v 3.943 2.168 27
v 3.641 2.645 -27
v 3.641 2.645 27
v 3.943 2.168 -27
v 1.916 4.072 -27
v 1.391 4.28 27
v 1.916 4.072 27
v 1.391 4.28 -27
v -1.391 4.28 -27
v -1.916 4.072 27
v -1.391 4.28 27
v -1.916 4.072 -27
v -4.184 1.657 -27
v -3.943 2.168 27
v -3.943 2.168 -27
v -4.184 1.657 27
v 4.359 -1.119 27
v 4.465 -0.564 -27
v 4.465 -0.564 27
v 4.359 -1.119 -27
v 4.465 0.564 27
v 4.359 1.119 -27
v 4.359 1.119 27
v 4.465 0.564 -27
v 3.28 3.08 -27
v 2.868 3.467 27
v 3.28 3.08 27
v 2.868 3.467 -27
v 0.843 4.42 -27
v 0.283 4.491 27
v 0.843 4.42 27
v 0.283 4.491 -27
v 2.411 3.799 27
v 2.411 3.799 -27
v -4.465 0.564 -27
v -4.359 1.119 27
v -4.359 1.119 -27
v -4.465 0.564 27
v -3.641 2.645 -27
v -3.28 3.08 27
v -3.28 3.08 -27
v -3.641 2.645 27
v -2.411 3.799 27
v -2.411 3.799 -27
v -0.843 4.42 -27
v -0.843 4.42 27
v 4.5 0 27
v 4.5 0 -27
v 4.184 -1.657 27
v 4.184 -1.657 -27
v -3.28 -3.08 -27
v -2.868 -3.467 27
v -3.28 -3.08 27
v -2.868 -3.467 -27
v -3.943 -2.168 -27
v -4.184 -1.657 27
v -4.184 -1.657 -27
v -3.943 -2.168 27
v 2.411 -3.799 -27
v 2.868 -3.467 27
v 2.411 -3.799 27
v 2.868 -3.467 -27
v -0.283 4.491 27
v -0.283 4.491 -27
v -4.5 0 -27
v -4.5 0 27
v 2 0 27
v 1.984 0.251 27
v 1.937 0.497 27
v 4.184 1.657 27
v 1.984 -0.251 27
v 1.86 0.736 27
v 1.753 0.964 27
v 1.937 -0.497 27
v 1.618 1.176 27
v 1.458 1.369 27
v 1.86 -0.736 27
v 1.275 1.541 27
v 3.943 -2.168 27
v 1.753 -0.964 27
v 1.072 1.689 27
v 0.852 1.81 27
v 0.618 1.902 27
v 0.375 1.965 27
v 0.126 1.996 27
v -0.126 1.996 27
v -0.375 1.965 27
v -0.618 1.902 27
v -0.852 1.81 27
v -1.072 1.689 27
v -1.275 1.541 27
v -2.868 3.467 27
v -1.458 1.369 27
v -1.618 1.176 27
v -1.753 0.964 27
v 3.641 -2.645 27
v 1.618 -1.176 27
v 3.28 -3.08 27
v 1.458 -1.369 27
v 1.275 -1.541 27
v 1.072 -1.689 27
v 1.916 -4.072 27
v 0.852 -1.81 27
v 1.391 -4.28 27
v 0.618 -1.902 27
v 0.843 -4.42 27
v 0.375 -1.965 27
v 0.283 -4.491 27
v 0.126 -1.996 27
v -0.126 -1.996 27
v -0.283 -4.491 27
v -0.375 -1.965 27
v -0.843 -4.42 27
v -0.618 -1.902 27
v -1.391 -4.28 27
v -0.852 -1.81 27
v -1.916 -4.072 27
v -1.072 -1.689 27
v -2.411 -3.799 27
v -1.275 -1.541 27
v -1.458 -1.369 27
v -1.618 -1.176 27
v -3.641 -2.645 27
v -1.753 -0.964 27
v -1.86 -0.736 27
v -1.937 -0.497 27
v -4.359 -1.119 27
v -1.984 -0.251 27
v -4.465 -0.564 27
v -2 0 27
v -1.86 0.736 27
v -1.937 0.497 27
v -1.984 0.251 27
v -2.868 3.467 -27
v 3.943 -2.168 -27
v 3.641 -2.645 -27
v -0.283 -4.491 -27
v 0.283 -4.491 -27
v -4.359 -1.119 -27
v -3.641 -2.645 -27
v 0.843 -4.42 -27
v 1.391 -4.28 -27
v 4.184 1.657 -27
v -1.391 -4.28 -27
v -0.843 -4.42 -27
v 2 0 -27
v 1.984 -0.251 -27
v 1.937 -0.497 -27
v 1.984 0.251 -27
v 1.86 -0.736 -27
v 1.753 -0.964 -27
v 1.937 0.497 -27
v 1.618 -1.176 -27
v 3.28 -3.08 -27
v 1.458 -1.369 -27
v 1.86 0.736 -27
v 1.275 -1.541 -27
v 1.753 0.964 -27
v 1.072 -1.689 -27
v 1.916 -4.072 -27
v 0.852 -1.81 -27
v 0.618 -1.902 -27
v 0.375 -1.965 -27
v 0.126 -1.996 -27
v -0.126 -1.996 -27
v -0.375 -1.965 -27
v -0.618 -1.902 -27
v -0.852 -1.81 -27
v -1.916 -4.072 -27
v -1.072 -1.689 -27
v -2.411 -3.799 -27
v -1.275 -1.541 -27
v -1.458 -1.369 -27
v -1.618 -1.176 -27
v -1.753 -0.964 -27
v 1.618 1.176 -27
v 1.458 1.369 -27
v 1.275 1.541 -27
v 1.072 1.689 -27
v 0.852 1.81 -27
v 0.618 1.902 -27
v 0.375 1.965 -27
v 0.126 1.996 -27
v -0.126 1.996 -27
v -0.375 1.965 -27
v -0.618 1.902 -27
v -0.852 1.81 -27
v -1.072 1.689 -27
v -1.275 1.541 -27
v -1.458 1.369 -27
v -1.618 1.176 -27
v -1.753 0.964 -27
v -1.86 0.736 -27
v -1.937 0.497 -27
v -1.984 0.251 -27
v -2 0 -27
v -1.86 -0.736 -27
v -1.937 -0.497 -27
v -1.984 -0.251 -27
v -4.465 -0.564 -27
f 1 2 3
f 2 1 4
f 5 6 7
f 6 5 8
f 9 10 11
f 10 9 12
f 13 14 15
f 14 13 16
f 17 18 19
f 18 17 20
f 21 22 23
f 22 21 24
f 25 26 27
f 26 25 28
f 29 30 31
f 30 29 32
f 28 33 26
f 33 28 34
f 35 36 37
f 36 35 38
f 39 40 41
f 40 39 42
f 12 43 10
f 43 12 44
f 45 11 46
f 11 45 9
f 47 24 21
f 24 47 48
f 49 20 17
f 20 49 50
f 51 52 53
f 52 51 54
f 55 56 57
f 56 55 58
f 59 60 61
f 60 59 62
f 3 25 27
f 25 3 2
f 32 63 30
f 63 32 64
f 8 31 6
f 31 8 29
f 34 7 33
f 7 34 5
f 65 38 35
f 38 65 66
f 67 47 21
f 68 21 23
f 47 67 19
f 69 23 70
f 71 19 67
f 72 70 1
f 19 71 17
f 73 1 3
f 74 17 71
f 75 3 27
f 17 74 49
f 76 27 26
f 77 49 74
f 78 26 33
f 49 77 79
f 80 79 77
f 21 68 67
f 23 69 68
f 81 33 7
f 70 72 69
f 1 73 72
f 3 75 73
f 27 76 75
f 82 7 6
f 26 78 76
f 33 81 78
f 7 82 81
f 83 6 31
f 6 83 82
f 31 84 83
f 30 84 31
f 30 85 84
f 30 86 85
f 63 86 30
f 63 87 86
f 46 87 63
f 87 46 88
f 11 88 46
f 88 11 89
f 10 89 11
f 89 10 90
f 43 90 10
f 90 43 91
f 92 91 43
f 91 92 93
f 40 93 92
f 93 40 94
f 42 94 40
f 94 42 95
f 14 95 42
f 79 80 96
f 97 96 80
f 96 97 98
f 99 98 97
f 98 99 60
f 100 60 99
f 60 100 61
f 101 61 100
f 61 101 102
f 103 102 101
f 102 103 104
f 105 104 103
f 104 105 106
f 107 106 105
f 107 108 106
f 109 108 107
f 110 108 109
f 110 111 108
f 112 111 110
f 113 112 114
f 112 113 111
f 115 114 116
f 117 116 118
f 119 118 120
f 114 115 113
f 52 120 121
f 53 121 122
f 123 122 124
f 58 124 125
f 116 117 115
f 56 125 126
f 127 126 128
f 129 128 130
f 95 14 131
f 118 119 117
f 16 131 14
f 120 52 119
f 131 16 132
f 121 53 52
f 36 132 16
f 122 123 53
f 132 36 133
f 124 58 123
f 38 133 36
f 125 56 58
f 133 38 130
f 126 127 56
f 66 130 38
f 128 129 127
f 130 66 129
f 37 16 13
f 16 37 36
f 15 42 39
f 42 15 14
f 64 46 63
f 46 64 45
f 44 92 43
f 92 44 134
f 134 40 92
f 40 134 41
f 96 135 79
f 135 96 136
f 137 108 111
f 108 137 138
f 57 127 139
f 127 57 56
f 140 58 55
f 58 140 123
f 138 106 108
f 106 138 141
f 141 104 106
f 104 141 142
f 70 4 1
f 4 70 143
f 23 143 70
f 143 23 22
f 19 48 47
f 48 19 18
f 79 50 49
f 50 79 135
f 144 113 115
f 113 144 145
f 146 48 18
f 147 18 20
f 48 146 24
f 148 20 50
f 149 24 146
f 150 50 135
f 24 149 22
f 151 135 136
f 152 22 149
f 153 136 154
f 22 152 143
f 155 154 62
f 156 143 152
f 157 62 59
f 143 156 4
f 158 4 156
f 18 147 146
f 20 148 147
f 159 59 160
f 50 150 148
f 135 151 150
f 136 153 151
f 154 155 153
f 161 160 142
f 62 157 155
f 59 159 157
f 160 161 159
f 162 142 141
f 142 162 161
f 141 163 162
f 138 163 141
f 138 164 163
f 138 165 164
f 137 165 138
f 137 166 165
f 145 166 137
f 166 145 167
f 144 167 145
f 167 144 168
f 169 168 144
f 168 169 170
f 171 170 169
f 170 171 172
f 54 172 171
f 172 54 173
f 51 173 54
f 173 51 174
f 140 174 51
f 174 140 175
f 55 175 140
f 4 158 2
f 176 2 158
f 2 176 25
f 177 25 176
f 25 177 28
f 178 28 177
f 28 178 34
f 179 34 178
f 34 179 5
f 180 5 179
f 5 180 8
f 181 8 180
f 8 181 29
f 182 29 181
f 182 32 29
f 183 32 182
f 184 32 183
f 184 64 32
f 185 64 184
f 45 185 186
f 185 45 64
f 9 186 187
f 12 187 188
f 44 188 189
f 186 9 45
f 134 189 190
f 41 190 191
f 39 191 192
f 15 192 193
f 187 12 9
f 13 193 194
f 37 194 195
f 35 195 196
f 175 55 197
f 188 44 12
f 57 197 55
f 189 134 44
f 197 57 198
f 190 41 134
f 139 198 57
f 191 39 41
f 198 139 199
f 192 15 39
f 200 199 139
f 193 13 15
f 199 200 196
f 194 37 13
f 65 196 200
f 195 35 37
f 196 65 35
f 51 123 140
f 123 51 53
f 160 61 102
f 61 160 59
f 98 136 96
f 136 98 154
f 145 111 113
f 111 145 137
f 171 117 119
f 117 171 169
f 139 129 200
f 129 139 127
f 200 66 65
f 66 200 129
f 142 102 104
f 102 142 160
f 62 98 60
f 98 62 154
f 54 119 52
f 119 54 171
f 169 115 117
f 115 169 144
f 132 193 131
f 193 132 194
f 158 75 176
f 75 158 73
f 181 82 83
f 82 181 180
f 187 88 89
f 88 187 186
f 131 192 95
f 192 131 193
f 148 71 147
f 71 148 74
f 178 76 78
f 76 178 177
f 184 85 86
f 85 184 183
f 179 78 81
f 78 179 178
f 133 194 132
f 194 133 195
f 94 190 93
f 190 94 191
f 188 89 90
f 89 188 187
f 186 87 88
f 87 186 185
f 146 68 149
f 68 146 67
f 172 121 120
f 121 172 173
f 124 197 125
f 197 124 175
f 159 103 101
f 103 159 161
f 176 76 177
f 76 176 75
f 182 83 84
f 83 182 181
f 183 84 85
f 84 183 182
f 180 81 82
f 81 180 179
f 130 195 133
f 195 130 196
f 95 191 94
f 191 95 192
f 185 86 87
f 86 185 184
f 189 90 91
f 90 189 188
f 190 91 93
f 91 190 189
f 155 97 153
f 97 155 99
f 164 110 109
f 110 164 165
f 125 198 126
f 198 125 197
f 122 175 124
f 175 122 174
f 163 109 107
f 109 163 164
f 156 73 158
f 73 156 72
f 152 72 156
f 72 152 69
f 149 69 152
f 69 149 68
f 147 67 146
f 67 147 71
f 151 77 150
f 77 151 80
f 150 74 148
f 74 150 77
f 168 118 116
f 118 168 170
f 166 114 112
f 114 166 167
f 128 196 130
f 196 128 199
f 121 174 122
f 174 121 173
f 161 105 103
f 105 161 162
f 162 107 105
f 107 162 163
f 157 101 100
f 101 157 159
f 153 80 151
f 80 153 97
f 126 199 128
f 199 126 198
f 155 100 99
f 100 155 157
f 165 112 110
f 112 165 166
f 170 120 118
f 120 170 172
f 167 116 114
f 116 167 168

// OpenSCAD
$fn = 50;


difference() {
	union() {
		translate(v = [0, 0, -27.0000000000]) {
			cylinder(h = 54, r = 4.5000000000);
		}
	}
	union() {
		translate(v = [0, 0, -100.0000000000]) {
			cylinder(h = 200, r = 2);
		}
	}
}
